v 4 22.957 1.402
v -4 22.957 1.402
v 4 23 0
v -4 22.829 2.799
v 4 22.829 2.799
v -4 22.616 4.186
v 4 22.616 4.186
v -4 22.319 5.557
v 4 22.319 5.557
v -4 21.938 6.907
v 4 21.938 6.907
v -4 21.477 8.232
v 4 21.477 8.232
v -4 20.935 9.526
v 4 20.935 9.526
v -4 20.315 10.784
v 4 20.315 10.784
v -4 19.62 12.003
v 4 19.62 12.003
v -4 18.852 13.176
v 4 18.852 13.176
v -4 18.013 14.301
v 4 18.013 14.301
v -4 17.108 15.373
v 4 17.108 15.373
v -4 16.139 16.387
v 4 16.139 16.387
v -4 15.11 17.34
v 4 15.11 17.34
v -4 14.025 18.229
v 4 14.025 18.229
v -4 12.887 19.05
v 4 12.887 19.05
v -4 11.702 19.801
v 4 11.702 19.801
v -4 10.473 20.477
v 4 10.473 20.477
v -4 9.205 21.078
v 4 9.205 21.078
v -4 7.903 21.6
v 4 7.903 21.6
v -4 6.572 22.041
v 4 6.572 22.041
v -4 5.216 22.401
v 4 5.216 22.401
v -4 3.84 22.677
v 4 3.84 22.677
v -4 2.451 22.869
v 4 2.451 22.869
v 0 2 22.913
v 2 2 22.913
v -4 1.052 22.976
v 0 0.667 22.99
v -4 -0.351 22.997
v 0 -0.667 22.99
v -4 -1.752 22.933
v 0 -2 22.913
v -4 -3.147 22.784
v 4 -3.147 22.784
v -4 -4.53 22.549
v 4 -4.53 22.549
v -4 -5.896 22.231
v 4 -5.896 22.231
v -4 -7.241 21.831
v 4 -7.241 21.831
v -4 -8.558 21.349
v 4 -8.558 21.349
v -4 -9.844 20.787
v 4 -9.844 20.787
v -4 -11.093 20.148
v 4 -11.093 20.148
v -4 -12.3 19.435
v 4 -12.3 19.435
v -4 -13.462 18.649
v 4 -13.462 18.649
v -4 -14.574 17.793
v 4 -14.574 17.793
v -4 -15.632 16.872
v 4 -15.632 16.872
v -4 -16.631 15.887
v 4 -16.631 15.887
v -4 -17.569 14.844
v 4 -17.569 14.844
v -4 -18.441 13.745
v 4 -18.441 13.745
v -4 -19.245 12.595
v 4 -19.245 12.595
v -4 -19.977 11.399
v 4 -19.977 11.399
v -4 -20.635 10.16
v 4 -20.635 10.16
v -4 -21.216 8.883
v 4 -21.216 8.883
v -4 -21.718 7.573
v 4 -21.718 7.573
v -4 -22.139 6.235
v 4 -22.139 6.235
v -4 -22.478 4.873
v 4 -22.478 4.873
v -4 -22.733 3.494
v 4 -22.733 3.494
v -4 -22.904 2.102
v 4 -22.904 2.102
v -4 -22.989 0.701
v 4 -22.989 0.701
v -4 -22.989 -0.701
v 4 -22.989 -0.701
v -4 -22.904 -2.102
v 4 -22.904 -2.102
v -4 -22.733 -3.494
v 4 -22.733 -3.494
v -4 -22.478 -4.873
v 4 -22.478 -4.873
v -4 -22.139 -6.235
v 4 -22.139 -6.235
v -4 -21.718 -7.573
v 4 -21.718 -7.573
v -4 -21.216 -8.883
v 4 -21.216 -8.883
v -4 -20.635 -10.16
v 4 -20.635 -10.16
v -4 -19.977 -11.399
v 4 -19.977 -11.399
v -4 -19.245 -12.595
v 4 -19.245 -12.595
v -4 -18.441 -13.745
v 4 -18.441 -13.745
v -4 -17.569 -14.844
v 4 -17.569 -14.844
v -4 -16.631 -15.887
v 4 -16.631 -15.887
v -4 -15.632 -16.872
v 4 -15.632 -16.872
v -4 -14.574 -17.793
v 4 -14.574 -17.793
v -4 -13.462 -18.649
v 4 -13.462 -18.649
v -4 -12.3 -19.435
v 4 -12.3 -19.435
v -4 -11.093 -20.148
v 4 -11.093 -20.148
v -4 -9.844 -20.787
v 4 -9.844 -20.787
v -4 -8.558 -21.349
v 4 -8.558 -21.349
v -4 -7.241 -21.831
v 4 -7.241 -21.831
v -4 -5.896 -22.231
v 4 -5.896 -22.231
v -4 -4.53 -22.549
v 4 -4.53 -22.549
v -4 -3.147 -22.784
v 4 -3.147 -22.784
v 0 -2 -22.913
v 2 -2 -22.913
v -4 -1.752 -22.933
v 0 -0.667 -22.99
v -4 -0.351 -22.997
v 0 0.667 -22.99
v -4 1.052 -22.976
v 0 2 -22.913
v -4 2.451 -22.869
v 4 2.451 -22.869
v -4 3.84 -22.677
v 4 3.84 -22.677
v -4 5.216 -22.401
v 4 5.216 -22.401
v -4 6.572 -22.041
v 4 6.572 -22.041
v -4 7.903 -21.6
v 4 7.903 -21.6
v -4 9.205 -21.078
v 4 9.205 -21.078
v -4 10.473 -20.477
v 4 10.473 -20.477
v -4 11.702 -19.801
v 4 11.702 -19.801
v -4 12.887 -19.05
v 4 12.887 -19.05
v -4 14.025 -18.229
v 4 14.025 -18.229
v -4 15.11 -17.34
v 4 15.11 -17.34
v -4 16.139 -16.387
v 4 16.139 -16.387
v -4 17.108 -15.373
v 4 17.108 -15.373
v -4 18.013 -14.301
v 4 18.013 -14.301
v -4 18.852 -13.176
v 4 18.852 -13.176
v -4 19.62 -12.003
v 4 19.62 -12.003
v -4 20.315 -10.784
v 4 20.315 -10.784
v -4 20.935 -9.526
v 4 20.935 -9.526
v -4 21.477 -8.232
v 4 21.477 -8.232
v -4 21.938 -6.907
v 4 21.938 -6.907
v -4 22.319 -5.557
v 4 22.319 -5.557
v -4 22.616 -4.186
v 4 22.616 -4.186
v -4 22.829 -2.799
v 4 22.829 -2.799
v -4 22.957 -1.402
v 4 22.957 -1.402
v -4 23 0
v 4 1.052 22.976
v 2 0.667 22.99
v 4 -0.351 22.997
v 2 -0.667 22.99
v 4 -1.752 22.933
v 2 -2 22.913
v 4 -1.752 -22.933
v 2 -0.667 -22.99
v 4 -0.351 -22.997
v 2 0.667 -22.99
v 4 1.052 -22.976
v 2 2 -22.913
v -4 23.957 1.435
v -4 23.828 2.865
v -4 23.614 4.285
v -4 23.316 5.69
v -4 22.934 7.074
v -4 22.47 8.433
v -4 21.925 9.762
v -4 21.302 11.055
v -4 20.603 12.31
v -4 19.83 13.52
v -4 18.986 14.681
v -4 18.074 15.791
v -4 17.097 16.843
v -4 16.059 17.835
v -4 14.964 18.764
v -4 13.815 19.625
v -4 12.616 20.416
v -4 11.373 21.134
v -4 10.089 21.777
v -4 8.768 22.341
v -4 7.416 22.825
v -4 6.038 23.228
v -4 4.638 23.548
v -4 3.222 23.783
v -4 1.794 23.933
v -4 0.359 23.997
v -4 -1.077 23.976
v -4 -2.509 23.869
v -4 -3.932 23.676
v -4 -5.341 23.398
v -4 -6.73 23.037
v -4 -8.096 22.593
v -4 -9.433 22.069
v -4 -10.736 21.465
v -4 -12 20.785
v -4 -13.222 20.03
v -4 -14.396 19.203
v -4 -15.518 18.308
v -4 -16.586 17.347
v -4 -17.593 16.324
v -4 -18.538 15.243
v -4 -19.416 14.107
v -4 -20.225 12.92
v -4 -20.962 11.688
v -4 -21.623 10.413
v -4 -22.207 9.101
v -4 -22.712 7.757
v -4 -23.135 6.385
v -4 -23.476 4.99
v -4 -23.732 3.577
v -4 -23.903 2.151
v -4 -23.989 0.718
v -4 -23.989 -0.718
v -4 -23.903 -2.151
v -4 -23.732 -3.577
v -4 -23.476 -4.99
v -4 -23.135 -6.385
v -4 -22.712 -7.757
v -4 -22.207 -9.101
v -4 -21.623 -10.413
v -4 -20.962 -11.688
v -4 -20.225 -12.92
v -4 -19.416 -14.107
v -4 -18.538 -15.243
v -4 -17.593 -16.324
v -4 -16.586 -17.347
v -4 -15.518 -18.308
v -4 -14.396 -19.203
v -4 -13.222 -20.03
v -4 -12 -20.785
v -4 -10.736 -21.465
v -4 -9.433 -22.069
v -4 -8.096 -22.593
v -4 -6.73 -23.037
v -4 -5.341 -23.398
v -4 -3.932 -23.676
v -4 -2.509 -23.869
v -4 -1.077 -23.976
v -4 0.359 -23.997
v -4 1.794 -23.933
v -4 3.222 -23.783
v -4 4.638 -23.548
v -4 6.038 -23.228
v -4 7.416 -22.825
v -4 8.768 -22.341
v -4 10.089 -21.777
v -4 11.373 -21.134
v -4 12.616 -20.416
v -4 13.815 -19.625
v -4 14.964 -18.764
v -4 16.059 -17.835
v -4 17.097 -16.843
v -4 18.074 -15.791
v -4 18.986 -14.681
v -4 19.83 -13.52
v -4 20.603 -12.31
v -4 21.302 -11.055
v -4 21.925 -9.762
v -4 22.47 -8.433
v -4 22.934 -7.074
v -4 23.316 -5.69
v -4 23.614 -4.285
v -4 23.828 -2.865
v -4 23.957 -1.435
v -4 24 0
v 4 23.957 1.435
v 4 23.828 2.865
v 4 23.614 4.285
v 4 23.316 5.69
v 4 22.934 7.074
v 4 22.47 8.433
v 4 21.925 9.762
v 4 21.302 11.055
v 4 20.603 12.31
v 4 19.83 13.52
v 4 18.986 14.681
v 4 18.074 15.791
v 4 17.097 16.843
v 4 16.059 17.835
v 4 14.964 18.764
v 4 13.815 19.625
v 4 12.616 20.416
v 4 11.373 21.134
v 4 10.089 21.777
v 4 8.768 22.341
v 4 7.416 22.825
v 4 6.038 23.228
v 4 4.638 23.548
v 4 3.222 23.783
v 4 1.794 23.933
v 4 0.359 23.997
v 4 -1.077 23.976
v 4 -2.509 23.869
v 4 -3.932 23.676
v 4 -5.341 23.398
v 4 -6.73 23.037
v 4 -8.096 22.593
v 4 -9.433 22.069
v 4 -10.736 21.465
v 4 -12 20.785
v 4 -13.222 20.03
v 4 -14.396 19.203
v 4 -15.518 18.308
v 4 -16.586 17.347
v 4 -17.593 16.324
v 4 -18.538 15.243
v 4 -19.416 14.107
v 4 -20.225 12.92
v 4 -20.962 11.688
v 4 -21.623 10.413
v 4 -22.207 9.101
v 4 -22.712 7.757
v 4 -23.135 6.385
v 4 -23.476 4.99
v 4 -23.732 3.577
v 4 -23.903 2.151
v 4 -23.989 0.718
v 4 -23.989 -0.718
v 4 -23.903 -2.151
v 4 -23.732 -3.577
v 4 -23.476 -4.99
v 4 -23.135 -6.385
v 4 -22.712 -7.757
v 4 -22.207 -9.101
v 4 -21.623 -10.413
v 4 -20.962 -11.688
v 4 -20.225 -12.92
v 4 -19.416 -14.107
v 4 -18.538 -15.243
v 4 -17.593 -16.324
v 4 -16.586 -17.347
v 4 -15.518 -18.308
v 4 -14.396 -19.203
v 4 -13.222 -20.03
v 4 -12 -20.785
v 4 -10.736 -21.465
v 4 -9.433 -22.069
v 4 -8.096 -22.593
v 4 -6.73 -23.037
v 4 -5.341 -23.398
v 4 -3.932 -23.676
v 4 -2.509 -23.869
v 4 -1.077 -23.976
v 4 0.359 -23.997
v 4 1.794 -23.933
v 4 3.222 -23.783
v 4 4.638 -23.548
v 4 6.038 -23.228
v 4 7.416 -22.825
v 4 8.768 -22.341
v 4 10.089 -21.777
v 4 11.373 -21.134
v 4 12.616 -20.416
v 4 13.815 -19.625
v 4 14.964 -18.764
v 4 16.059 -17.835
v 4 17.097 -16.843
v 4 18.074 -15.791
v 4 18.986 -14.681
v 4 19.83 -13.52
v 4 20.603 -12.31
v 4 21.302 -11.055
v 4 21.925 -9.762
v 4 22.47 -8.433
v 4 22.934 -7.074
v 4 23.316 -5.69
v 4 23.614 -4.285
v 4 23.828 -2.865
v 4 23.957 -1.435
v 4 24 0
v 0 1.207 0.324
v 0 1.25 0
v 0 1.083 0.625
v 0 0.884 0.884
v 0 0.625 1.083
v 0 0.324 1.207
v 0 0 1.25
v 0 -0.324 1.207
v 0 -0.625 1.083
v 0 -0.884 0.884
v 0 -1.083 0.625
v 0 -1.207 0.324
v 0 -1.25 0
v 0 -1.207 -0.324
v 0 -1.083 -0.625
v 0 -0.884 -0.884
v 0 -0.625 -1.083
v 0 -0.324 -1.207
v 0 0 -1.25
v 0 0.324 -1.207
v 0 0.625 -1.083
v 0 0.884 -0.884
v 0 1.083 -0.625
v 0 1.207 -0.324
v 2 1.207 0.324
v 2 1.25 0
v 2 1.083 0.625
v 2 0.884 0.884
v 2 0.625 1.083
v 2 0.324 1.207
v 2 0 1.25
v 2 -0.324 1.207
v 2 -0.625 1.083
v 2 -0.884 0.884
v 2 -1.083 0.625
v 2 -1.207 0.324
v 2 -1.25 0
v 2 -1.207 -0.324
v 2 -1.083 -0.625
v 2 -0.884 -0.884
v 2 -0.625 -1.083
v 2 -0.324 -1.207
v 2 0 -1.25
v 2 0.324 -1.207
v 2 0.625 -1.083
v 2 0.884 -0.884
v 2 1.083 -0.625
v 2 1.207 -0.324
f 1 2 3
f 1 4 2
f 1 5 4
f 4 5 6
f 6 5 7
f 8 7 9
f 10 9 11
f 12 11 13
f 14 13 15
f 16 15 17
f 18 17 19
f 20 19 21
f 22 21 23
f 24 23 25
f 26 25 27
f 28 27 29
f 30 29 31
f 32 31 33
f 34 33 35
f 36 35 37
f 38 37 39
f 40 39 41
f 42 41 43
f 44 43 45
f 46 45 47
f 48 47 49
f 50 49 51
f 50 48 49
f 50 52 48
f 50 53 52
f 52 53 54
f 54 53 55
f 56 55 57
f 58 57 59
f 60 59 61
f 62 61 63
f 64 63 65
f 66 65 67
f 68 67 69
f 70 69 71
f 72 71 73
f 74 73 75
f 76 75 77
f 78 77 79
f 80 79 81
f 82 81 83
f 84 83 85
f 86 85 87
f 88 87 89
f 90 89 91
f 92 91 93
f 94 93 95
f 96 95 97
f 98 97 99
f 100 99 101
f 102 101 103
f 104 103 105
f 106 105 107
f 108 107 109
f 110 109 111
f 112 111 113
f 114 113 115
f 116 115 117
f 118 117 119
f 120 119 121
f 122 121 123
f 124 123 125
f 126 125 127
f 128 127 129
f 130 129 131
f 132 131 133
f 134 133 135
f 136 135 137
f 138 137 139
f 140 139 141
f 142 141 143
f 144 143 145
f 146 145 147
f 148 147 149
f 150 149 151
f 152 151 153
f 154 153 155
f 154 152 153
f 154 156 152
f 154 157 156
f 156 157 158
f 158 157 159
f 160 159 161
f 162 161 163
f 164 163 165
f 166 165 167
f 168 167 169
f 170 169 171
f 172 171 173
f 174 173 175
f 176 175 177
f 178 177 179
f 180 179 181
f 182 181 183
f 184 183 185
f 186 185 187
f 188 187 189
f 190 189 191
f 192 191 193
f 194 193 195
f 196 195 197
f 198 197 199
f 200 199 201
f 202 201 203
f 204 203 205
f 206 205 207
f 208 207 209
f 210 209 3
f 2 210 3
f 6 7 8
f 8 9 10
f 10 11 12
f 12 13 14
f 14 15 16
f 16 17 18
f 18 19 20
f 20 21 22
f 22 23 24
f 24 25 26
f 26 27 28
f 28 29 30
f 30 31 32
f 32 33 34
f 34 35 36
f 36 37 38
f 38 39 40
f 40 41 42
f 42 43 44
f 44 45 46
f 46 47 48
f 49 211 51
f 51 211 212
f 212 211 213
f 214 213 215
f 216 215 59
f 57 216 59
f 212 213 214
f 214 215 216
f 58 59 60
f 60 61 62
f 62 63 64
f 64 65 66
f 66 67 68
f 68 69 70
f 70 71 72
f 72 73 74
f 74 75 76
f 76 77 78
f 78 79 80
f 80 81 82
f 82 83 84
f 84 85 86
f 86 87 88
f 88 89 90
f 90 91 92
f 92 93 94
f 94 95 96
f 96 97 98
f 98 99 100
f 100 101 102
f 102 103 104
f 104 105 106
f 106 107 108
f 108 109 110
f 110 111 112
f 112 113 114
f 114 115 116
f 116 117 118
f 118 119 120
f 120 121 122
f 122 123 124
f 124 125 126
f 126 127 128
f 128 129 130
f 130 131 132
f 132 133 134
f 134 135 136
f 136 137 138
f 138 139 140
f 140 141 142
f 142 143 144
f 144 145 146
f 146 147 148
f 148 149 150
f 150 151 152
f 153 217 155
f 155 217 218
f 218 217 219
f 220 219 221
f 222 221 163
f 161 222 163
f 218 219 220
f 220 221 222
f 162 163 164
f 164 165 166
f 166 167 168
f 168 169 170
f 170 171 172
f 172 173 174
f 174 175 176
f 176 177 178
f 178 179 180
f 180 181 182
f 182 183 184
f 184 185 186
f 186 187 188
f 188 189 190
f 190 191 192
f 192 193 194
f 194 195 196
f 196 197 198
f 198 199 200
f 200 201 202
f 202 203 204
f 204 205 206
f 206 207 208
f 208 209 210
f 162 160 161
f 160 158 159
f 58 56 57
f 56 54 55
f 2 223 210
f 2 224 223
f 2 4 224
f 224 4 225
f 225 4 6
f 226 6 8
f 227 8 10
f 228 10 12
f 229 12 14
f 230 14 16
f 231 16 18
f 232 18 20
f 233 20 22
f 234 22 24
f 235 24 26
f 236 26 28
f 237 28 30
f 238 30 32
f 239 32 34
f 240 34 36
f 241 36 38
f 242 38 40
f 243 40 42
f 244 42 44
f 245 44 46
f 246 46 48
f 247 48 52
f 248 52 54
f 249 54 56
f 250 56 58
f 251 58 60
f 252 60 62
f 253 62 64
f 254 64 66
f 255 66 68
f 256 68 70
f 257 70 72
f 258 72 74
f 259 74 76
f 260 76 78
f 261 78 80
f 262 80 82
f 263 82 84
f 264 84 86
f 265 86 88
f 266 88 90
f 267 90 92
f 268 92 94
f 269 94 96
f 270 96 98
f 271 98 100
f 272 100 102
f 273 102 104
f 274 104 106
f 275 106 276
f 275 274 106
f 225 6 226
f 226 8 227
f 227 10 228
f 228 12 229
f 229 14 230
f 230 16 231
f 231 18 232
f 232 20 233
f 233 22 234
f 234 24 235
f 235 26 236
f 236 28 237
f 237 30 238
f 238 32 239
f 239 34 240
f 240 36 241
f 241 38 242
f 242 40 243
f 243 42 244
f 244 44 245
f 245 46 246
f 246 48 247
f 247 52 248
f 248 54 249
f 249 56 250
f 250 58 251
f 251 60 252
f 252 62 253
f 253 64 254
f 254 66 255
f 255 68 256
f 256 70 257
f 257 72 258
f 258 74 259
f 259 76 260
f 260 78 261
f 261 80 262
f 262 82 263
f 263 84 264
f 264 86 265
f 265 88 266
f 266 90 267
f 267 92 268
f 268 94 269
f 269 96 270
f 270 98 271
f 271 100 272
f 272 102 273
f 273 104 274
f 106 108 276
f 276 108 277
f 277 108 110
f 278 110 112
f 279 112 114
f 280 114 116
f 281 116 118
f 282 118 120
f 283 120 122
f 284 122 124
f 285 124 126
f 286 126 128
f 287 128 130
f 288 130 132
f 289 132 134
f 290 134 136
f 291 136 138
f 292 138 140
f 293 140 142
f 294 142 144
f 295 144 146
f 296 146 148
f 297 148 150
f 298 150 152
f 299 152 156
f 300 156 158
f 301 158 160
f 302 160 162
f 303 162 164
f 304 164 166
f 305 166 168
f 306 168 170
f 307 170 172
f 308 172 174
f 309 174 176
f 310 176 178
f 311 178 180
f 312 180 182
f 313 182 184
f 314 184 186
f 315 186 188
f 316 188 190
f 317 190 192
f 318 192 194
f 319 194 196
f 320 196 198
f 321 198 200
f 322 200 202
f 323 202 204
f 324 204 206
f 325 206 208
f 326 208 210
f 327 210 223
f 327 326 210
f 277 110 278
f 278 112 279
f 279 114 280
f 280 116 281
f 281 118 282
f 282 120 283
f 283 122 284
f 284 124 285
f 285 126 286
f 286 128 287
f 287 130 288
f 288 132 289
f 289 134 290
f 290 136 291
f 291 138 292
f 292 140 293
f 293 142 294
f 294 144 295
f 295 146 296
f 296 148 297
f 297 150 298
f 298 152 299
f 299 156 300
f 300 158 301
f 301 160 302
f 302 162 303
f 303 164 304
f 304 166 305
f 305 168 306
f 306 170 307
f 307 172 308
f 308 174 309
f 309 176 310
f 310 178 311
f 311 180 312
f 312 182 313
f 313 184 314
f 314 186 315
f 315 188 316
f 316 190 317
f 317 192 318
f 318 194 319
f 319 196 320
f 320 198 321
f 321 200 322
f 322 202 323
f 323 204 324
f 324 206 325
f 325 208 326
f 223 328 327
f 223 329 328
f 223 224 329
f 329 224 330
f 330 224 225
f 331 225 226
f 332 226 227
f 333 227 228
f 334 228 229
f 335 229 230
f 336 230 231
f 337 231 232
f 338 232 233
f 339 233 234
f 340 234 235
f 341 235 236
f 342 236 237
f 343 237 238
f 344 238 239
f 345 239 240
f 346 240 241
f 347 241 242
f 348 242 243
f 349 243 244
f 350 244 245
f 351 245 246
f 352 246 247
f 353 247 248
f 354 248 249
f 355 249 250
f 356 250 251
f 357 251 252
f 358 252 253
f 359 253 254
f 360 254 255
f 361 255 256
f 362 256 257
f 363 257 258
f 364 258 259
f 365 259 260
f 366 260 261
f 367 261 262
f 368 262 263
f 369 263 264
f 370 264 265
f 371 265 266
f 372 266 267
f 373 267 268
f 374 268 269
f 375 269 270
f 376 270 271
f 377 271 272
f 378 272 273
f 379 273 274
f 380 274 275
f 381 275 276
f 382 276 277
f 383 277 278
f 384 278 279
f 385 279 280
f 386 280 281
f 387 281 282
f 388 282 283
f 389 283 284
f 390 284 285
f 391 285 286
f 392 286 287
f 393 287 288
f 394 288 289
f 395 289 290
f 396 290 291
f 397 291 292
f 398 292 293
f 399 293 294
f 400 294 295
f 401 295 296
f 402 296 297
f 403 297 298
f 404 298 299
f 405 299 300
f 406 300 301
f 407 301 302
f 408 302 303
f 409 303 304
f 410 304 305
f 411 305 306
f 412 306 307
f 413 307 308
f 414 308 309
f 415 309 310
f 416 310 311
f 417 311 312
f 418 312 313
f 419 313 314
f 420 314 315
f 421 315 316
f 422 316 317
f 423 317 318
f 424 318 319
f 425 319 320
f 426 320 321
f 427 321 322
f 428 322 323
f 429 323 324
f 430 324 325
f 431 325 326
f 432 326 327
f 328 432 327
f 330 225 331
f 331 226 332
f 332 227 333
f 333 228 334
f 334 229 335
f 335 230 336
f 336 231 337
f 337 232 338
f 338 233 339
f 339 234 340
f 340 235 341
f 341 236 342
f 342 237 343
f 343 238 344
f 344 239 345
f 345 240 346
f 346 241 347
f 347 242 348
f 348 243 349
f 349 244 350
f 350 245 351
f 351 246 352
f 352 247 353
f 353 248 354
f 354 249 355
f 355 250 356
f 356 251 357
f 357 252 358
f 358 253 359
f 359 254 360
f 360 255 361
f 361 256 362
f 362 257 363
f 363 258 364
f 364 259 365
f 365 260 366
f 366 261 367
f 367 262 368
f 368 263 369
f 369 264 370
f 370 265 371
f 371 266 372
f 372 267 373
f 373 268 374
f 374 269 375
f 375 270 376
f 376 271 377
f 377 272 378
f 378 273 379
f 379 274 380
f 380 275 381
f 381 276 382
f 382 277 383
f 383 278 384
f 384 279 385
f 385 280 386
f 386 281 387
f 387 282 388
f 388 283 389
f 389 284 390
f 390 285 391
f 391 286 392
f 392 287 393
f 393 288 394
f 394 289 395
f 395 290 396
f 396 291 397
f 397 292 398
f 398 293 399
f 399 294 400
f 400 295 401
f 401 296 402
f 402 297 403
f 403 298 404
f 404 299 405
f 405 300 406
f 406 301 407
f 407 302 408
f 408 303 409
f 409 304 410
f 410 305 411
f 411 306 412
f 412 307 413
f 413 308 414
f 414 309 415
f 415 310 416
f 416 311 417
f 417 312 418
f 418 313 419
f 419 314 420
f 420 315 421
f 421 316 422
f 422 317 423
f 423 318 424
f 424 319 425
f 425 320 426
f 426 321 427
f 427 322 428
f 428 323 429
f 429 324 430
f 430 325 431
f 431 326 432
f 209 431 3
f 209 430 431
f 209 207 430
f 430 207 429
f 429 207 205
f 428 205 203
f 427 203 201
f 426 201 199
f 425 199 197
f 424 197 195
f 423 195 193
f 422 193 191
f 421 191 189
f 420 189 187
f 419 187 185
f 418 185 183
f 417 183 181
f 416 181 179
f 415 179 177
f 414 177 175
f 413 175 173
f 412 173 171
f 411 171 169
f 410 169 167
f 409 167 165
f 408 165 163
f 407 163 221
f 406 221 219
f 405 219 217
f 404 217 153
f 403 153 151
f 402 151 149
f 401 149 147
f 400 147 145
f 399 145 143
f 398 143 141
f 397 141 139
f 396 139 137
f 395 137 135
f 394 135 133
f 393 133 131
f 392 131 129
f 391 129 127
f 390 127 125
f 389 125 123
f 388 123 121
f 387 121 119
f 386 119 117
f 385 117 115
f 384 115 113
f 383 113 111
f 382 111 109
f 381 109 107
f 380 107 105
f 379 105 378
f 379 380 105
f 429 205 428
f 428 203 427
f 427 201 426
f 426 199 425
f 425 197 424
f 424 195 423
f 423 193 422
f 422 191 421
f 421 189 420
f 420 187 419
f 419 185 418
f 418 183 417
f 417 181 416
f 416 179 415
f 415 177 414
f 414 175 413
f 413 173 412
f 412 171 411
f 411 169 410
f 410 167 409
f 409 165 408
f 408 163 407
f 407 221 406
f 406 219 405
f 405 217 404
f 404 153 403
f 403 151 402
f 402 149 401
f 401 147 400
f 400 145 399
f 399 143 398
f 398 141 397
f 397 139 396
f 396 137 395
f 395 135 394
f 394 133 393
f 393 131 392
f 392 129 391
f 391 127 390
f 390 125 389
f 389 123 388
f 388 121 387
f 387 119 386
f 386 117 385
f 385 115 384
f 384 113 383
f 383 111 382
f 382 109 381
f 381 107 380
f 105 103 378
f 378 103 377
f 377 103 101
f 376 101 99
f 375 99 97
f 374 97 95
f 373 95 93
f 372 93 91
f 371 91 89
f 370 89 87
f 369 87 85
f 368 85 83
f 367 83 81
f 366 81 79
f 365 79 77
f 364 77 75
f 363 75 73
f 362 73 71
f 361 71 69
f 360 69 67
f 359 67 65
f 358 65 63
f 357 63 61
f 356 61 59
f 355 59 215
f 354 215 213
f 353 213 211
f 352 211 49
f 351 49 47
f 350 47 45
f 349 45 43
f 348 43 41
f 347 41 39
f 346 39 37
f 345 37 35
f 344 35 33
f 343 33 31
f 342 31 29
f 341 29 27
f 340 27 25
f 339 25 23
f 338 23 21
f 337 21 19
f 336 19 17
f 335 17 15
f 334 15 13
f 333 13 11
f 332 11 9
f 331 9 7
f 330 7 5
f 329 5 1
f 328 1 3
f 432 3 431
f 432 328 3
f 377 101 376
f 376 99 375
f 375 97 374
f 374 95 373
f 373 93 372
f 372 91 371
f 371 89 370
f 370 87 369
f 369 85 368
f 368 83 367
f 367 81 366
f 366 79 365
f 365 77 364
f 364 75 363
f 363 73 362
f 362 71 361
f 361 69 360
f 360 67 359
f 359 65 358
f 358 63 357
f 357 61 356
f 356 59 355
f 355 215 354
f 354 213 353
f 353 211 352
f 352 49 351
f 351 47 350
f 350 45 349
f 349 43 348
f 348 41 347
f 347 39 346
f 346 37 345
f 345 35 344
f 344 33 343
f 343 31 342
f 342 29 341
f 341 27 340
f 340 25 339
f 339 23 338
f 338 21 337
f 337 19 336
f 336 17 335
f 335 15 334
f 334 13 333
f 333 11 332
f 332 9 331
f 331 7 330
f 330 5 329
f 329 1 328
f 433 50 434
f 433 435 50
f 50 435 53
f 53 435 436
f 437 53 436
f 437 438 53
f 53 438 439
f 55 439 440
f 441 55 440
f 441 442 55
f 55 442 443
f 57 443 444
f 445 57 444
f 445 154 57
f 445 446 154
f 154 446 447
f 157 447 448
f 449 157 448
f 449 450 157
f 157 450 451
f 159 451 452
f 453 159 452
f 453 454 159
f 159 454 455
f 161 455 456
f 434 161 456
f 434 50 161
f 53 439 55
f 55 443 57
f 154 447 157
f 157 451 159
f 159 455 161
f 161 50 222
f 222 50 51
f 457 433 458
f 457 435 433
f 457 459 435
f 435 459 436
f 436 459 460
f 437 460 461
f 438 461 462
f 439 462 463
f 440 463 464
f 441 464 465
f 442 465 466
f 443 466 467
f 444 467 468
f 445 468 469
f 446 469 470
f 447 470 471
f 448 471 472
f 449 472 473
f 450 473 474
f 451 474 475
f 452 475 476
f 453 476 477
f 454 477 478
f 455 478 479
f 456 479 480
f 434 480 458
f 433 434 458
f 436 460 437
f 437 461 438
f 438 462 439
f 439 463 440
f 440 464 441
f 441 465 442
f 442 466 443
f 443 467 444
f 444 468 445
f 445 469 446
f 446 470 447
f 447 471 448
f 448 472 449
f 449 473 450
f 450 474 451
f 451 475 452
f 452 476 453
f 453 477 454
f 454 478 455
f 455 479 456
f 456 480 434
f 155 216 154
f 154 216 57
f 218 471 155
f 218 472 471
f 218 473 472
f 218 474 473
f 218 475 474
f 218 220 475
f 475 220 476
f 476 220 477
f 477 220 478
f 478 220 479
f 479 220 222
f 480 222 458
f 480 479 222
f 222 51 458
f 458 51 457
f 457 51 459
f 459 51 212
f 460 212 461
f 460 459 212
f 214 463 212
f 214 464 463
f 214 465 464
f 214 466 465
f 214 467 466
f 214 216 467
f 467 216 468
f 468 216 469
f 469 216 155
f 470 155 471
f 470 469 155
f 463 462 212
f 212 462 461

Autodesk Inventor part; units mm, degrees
ref_plane "YZ Plane" through (0, 0, 0) normal (1, 0, 0) x (0, 1, 0)
ref_plane "XZ Plane" through (0, 0, 0) normal (0, 1, 0) x (-1, 0, 0)
ref_plane "XY Plane" through (0, 0, 0) normal (0, 0, 1) x (1, 0, 0)
sketch "Boceto1" plane through (0, 0, 0) normal (1, 0, 0) x (0, 1, 0)
  line L0 (2, 23) -> (-2, 23)
  line L1 (-2, 23) -> (-2, -23)
  line L2 (-2, -23) -> (2, -23)
  line L3 (2, -23) -> (2, 23)
  circle A0 centre (0, 0) radius 1.25
  dimension "d0" = 4
  dimension "d1" = 46
  dimension "d2" = 2
  dimension "d3" = 23
  dimension "d4" = 2.5
extrude "Extrusión1" add sketch "Boceto1" along normal blind 2
sketch "Boceto2" plane through (0, 0, 0) normal (1, 0, 0) x (0, 1, 0)
  circle A0 centre (0, 0) radius 24
  circle A1 centre (0, 0) radius 23
  dimension "d7" = 48
  dimension "d8" = 46
extrude "Extrusión2" add sketch "Boceto2" along normal mid plane 8
properties part number "Molde2" material "Nilón 6/6"
